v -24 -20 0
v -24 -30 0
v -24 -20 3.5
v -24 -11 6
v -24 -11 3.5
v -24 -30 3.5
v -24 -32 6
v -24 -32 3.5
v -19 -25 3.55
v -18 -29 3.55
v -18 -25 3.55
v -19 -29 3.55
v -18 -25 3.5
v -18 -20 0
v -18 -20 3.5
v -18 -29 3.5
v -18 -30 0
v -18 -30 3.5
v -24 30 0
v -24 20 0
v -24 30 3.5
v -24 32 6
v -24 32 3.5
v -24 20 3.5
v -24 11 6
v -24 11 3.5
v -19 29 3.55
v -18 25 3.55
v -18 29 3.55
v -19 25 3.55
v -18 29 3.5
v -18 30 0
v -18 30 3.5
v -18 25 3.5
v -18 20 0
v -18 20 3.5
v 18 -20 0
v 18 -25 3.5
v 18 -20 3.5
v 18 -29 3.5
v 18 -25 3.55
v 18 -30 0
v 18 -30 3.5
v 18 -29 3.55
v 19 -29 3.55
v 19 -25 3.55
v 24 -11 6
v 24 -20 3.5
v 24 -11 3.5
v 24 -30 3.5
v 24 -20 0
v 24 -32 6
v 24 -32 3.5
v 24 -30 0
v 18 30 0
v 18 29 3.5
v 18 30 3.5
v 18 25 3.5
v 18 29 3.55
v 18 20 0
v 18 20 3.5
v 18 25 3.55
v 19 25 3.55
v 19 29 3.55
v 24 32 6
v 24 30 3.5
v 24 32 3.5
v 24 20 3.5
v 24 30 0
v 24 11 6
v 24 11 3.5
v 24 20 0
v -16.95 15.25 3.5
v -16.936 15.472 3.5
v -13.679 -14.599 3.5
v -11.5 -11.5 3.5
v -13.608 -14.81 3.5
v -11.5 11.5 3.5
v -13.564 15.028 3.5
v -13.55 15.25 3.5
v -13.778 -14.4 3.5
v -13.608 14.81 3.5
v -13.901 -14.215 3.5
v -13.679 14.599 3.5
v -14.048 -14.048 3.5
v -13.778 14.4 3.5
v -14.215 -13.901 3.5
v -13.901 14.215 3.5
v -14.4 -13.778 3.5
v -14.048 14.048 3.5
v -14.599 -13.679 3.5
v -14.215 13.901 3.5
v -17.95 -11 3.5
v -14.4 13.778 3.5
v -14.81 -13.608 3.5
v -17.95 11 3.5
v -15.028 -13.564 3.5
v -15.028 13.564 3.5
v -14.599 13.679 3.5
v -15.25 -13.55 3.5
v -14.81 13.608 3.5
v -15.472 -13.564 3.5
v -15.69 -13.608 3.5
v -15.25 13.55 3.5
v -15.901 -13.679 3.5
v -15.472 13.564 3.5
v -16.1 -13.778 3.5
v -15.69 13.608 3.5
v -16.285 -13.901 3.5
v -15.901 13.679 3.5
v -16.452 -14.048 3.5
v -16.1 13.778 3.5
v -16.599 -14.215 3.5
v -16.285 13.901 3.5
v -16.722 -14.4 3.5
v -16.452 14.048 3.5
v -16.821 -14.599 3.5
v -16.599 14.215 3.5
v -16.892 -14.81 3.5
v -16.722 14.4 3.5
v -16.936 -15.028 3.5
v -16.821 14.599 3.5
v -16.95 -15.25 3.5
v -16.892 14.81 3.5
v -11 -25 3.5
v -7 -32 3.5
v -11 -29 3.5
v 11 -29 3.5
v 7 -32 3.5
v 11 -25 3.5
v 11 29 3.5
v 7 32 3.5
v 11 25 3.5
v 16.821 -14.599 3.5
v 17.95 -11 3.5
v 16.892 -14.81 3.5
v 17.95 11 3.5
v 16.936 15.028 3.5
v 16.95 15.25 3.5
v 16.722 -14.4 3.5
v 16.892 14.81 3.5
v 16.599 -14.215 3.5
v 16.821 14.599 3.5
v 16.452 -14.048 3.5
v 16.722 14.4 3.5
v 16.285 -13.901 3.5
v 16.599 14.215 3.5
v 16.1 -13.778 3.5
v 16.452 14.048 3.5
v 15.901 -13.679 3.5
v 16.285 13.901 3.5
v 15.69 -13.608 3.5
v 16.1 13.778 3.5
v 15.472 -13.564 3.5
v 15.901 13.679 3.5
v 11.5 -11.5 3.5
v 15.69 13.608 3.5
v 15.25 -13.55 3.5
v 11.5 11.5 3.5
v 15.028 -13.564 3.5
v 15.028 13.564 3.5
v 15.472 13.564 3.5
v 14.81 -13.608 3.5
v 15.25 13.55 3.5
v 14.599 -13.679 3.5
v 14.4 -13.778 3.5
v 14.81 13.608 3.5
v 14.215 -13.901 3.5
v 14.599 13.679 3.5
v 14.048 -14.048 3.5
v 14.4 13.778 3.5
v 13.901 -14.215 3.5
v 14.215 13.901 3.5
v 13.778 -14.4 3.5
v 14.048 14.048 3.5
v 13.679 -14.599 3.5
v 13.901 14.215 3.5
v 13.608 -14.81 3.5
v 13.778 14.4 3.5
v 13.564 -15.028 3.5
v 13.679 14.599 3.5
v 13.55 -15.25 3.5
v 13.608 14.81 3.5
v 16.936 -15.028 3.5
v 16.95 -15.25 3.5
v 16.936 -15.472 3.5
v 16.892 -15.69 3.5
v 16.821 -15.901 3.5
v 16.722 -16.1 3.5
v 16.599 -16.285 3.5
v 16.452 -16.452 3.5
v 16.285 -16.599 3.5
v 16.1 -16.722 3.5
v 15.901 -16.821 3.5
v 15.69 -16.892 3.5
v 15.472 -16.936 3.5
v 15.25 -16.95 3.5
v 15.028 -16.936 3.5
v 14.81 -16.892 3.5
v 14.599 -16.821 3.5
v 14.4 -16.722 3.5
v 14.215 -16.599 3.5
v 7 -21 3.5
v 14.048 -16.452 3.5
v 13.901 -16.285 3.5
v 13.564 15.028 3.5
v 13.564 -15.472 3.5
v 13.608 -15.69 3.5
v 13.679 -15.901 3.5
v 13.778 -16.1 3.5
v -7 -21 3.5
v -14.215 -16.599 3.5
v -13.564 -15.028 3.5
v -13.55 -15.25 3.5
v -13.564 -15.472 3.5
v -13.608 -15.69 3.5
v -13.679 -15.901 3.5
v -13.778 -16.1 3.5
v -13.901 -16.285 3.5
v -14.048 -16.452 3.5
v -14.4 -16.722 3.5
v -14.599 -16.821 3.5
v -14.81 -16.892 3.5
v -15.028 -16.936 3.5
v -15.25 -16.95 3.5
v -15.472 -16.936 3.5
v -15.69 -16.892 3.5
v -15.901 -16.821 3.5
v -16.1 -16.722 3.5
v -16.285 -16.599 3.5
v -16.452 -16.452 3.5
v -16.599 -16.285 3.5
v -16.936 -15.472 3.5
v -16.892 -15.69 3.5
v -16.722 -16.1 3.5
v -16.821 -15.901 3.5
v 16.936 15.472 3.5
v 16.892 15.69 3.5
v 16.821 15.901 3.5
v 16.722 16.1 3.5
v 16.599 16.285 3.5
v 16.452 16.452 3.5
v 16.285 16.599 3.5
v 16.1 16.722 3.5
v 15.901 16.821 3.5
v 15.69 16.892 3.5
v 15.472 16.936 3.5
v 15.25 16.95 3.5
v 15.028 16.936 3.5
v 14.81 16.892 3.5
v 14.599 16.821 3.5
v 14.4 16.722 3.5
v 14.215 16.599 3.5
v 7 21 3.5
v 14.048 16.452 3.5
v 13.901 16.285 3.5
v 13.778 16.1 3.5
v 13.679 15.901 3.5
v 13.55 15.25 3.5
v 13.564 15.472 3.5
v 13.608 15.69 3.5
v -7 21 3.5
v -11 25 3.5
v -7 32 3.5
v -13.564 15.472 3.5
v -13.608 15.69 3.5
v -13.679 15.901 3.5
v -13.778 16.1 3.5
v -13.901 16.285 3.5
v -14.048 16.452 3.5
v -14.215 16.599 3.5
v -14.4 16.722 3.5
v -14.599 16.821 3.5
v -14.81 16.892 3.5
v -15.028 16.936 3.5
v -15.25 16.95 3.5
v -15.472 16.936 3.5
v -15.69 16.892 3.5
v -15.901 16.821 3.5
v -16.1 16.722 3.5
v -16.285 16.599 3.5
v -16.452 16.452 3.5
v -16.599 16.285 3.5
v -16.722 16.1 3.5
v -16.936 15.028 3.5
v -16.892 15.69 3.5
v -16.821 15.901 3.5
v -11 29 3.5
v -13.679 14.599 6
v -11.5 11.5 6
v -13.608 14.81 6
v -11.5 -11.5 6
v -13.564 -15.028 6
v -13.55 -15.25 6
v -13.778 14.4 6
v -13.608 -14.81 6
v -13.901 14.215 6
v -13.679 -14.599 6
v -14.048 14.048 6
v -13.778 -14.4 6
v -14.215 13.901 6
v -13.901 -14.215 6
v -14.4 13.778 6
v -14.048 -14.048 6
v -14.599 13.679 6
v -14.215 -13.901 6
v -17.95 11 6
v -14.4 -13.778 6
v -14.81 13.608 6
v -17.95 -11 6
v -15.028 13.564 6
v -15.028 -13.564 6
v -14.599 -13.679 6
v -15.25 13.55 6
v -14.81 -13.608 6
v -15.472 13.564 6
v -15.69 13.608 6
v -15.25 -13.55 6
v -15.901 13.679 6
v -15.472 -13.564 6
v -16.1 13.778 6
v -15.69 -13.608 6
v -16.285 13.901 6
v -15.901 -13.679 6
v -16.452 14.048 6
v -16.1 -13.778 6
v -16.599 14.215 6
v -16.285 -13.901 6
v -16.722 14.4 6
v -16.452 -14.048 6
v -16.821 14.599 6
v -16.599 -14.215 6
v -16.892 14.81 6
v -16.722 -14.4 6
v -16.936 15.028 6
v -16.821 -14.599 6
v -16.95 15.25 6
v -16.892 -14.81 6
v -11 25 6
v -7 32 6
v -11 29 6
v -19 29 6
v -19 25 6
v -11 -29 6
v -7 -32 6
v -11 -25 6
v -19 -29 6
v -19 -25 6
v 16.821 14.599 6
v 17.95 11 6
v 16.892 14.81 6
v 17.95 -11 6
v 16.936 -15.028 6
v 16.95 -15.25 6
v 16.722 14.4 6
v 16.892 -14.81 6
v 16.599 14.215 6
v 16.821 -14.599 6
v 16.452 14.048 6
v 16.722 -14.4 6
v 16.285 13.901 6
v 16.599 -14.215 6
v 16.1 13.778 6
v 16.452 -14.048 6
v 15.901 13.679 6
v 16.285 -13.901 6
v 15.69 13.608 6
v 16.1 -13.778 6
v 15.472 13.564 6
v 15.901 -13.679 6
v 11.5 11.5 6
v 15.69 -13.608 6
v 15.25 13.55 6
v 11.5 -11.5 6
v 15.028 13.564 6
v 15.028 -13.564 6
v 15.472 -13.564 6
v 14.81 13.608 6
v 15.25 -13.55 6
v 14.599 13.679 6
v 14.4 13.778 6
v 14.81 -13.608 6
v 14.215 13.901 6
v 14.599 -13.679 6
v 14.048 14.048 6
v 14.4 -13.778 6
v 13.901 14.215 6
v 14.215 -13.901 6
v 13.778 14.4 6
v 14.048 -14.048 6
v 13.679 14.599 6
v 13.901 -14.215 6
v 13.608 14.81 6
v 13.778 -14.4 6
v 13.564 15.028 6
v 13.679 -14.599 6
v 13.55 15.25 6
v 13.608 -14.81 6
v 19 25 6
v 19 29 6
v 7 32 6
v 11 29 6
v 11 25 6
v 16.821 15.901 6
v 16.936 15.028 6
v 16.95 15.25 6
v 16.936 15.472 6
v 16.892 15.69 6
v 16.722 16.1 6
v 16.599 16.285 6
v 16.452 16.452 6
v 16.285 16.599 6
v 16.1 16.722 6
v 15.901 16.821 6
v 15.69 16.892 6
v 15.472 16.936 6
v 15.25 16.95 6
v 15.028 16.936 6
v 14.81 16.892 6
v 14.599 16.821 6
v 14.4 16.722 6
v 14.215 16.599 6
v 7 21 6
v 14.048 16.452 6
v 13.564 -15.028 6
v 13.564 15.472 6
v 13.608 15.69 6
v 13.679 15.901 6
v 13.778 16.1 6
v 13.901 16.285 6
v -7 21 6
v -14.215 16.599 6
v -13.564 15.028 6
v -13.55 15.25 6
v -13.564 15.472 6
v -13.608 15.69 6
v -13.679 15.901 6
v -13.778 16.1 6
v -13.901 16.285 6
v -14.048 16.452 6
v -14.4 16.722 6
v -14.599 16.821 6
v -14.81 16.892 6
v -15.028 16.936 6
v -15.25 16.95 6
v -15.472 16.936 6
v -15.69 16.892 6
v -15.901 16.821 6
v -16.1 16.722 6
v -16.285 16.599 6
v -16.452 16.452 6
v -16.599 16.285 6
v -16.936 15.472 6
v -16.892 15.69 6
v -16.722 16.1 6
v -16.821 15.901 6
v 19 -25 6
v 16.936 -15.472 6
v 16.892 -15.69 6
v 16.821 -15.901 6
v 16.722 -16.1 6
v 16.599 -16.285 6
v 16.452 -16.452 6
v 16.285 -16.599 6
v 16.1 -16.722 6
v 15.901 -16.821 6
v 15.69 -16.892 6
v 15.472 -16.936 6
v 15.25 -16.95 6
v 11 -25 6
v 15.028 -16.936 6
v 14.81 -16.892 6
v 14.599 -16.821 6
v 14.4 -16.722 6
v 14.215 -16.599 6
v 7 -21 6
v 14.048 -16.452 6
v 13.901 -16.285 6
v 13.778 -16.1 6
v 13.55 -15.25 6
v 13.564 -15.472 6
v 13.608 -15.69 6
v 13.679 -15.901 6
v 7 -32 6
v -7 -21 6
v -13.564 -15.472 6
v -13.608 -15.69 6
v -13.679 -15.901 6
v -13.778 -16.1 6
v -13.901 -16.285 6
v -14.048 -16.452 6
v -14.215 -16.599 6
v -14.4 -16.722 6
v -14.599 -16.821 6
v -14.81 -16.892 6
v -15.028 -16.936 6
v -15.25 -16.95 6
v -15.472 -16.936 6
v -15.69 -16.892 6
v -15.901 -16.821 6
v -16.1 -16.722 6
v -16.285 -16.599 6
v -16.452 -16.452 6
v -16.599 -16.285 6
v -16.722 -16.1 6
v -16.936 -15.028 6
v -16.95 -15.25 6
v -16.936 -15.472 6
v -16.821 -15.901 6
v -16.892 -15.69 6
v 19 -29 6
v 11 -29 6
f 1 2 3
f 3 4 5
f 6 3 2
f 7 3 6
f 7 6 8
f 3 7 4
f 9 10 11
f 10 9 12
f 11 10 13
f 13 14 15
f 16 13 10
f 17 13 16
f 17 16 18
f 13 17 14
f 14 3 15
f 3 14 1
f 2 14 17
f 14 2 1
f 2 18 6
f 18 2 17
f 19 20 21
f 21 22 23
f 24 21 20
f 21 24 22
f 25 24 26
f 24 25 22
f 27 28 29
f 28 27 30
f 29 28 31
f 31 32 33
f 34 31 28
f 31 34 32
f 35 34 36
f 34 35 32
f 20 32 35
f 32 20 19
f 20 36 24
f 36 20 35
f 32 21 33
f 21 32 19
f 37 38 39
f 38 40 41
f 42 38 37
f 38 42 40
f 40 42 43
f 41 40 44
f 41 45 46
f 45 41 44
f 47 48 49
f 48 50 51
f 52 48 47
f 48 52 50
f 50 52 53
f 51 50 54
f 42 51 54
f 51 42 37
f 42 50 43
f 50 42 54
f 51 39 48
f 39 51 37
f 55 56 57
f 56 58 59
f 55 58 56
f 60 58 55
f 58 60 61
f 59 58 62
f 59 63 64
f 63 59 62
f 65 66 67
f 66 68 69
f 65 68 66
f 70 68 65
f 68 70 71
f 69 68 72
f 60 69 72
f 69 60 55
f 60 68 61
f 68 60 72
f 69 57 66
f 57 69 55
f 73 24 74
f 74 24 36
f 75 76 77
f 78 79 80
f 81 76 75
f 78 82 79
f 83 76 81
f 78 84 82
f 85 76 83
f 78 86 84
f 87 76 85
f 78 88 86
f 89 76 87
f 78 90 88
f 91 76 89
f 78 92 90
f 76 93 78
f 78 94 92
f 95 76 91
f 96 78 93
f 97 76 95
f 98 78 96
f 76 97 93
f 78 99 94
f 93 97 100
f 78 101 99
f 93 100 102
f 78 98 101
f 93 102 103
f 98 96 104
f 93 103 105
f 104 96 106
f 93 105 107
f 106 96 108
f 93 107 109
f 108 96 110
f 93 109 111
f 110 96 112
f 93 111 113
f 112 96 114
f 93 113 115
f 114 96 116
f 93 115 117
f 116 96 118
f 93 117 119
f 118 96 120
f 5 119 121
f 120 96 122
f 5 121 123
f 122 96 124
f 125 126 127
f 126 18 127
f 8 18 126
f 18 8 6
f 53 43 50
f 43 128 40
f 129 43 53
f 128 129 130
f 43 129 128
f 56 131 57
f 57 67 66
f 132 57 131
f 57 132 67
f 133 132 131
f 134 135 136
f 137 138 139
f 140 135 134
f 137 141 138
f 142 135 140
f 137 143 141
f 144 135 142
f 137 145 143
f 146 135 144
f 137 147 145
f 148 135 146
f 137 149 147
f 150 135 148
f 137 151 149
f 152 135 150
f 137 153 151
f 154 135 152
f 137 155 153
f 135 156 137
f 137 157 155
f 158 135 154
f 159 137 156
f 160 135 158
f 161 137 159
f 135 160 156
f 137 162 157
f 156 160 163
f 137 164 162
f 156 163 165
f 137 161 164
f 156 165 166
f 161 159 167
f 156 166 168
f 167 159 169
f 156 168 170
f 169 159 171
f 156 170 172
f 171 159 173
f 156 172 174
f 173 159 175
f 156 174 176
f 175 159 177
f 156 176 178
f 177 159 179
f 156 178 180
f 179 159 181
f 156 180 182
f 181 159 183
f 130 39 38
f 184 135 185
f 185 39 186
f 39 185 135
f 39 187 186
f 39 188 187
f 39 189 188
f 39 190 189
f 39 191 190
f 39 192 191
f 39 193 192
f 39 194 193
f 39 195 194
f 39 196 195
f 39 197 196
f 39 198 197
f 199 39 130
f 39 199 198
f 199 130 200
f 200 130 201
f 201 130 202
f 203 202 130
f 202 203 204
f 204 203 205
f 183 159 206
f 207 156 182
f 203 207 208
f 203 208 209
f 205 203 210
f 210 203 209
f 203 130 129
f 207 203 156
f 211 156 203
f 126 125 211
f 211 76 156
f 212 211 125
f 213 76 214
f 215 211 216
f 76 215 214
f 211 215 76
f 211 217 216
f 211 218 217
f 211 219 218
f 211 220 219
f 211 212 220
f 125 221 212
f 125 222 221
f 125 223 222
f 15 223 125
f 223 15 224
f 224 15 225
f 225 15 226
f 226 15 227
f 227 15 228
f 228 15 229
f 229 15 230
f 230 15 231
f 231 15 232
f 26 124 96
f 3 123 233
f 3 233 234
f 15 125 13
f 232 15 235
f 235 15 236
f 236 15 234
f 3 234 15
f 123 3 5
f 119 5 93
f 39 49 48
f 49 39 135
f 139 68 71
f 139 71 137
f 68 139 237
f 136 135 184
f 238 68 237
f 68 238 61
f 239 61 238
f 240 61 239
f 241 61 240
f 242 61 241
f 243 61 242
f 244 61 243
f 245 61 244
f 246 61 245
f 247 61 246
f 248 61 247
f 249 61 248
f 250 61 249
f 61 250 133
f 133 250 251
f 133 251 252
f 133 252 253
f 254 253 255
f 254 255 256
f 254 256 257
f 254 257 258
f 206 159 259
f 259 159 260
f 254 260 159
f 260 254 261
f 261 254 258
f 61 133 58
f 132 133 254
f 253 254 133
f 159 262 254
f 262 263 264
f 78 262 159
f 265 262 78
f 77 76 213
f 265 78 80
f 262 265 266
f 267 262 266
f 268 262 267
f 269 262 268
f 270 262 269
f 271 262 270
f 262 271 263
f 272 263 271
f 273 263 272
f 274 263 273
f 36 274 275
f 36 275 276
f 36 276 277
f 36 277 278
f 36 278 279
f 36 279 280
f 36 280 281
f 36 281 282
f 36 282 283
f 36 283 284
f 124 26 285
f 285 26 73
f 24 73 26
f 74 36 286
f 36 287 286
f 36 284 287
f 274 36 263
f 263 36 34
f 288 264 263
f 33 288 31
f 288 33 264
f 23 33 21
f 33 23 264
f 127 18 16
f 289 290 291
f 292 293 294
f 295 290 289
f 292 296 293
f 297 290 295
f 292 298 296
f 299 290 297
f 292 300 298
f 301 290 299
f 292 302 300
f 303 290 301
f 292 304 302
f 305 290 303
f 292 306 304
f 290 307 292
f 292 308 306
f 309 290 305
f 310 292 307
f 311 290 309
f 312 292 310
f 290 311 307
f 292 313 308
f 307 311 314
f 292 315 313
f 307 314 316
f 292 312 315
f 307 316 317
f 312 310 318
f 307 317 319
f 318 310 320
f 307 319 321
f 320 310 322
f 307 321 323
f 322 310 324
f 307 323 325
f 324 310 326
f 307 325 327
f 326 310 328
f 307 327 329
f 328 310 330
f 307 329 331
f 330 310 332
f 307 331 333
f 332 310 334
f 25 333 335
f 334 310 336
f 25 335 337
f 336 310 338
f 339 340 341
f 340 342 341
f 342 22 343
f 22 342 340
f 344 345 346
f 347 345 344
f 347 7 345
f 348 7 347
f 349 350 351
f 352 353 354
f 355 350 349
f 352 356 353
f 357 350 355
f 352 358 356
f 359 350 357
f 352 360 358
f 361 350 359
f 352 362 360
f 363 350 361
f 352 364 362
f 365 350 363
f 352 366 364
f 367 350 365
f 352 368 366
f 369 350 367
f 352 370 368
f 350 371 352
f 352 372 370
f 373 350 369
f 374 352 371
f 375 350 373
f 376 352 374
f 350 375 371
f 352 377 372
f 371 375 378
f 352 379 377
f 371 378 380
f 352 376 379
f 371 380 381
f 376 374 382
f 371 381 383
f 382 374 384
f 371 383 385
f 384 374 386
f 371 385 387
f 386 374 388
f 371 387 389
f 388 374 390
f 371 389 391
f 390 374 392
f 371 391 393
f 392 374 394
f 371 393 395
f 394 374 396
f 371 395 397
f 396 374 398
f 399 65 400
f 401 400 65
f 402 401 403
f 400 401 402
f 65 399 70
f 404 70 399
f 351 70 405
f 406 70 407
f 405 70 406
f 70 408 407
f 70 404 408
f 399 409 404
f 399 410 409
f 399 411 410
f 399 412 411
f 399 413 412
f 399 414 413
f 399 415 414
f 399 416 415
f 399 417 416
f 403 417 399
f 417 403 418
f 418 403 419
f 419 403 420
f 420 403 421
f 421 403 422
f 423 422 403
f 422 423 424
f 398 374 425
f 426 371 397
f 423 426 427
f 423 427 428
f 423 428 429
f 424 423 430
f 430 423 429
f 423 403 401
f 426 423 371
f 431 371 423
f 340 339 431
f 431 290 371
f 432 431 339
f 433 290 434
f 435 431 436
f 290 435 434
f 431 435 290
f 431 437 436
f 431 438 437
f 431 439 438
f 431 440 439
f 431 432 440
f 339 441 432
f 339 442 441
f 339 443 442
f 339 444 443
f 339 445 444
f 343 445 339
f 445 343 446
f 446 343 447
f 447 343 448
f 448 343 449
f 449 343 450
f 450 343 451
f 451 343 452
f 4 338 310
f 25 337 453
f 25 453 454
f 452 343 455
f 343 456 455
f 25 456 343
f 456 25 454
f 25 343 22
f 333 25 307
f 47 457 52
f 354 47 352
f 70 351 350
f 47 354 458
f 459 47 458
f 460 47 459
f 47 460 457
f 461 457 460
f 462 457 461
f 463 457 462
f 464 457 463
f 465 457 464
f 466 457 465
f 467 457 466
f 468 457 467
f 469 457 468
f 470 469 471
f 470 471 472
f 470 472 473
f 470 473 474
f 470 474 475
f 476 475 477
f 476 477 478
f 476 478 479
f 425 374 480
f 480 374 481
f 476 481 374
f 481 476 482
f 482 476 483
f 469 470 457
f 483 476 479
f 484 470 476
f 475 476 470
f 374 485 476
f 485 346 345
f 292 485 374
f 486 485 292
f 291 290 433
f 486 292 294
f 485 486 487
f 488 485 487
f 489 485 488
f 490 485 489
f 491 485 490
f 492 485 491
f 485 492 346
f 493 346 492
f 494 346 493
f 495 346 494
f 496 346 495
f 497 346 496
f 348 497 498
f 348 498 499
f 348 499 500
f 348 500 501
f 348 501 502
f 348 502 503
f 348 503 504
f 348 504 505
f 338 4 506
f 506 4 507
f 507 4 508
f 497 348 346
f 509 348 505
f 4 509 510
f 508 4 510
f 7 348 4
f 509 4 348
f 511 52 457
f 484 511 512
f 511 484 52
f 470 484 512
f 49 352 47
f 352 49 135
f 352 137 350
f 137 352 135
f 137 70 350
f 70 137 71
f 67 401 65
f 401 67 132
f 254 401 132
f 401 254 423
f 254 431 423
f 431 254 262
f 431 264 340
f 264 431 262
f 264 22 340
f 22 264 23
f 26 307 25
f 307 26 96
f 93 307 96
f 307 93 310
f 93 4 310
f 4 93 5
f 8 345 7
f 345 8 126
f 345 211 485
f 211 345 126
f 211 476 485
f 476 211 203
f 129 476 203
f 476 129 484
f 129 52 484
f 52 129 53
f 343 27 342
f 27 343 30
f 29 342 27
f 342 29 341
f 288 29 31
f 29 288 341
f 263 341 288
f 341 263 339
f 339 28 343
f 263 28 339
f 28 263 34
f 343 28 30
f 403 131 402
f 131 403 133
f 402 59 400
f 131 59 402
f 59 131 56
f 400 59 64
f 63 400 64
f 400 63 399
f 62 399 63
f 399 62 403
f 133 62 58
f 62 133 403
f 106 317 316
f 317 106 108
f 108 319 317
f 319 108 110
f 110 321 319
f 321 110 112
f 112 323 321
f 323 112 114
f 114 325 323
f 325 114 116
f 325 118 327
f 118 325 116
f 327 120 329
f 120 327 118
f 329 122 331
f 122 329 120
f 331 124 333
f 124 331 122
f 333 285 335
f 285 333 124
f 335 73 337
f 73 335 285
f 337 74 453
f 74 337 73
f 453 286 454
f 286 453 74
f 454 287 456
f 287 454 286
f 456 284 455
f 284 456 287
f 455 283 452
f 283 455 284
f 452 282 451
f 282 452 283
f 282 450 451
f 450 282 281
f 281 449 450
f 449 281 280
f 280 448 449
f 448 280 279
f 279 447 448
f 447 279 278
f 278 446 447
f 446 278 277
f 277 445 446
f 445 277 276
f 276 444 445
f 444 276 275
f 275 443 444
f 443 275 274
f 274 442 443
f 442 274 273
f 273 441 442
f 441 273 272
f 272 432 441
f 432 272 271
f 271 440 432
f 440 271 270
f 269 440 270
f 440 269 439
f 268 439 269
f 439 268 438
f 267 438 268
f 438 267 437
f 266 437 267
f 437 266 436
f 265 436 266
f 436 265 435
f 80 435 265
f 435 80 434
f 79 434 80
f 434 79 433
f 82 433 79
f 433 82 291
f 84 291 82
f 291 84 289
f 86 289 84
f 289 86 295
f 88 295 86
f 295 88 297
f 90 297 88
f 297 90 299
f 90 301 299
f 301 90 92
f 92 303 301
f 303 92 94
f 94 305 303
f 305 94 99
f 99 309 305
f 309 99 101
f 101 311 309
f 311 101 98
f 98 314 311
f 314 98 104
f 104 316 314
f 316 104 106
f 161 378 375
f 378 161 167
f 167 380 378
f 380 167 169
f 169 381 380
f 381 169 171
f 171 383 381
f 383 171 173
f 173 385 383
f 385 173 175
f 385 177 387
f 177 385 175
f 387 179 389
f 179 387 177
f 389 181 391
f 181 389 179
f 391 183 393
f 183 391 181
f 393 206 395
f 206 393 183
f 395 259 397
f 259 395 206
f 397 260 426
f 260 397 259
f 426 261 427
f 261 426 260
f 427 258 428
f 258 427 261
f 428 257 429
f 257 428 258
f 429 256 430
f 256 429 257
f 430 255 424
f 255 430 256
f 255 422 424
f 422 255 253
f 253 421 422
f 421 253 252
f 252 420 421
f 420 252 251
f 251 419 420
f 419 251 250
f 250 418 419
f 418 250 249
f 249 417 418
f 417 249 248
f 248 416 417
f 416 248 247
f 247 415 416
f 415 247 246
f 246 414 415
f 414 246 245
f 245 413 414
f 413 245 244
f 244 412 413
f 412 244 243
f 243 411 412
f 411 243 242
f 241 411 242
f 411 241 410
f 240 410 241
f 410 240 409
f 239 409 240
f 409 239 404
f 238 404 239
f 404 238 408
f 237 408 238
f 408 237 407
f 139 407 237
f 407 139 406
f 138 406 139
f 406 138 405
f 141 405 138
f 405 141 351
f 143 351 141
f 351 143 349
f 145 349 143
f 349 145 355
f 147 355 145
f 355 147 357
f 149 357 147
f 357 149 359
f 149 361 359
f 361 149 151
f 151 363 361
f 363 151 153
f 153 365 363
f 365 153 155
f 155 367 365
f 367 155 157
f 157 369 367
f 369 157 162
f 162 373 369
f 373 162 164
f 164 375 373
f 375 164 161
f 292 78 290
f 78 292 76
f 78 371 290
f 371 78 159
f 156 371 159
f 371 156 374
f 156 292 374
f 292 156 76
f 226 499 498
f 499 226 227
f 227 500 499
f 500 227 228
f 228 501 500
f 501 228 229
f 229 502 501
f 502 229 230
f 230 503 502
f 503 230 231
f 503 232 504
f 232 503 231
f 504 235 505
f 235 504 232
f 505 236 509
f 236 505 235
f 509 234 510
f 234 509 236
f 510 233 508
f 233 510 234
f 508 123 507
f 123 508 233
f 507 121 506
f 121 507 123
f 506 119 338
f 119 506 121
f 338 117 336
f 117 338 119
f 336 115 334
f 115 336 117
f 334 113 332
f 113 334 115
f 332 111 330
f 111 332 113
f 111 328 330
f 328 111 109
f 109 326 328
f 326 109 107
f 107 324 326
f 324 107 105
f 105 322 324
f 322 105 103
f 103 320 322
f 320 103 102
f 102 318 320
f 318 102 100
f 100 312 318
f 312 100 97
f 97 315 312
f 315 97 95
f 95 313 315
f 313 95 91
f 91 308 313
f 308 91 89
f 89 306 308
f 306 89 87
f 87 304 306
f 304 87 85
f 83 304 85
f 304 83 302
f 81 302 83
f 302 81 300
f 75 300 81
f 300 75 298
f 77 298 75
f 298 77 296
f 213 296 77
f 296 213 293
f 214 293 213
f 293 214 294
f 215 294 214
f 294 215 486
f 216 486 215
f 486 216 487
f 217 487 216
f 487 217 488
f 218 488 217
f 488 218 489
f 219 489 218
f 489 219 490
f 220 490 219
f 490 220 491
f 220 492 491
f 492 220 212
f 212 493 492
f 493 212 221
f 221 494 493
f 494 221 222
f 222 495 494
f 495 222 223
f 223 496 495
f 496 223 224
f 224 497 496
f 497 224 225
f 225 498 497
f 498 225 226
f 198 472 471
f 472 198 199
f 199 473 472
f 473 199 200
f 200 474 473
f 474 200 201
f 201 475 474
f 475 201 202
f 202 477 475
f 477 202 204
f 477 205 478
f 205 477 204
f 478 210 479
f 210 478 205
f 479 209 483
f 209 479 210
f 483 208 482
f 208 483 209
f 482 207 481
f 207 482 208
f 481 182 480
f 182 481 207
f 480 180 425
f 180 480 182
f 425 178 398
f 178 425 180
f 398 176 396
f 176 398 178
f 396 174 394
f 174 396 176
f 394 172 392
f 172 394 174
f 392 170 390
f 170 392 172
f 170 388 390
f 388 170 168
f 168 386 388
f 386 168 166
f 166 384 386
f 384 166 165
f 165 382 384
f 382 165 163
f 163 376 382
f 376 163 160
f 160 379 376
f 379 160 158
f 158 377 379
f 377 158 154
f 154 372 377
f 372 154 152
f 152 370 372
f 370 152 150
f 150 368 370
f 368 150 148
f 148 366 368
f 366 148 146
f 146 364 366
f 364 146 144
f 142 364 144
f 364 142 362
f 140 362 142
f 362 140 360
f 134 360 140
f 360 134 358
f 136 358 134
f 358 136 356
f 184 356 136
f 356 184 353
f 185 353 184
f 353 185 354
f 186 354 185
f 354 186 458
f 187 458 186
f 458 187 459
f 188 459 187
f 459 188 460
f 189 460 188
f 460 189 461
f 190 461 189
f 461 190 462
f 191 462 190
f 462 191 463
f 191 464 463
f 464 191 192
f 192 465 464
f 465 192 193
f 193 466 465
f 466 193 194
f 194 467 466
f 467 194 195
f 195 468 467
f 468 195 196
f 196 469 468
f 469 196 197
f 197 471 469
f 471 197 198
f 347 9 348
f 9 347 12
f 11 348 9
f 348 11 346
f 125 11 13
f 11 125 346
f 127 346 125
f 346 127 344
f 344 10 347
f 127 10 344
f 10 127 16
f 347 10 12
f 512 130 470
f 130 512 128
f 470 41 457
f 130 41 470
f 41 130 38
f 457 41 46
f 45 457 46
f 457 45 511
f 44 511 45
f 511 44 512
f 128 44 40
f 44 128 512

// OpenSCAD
// Original MicoAir743/50A stack FIT PROTOTYPE, millimetres.
// https://micoair.com/flightcontroller_micoair743/
// Preserve supplied silicone grommets; this adapter is NOT an isolator.
$fn=48;
pitch=30.5;
base=2.5;
head_gap=3.5; // underside bolt heads must leave >=0.5 mm electrical clearance
assert(pitch==30.5 && base>=2.5 && head_gap>=3.5);
module outline(){
 difference(){
  square([48,64],center=true);
  square([23,23],center=true);
  // Remove material outside the screw load paths and between tie feet.
  for(x=[-21,21]) translate([x,0]) square([6.1,22],center=true);
  for(y=[-27,27]) translate([0,y]) square([14,12],center=true);
  for(x=[-pitch/2,pitch/2],y=[-pitch/2,pitch/2])
   translate([x,y]) circle(d=3.4);
  // Four separated lashing passages outside electronics footprint.
  for(x=[-15,15],y=[-27,27])
   translate([x,y]) square([8,4],center=true);
 }
}
// Print feet downward: underside gap keeps metal off the power board.
translate([0,0,head_gap]) linear_extrude(base) outline();
for(x=[-21,21],y=[-25,25])
 translate([x-3,y-5,0]) cube([6,10,head_gap+0.05]);
